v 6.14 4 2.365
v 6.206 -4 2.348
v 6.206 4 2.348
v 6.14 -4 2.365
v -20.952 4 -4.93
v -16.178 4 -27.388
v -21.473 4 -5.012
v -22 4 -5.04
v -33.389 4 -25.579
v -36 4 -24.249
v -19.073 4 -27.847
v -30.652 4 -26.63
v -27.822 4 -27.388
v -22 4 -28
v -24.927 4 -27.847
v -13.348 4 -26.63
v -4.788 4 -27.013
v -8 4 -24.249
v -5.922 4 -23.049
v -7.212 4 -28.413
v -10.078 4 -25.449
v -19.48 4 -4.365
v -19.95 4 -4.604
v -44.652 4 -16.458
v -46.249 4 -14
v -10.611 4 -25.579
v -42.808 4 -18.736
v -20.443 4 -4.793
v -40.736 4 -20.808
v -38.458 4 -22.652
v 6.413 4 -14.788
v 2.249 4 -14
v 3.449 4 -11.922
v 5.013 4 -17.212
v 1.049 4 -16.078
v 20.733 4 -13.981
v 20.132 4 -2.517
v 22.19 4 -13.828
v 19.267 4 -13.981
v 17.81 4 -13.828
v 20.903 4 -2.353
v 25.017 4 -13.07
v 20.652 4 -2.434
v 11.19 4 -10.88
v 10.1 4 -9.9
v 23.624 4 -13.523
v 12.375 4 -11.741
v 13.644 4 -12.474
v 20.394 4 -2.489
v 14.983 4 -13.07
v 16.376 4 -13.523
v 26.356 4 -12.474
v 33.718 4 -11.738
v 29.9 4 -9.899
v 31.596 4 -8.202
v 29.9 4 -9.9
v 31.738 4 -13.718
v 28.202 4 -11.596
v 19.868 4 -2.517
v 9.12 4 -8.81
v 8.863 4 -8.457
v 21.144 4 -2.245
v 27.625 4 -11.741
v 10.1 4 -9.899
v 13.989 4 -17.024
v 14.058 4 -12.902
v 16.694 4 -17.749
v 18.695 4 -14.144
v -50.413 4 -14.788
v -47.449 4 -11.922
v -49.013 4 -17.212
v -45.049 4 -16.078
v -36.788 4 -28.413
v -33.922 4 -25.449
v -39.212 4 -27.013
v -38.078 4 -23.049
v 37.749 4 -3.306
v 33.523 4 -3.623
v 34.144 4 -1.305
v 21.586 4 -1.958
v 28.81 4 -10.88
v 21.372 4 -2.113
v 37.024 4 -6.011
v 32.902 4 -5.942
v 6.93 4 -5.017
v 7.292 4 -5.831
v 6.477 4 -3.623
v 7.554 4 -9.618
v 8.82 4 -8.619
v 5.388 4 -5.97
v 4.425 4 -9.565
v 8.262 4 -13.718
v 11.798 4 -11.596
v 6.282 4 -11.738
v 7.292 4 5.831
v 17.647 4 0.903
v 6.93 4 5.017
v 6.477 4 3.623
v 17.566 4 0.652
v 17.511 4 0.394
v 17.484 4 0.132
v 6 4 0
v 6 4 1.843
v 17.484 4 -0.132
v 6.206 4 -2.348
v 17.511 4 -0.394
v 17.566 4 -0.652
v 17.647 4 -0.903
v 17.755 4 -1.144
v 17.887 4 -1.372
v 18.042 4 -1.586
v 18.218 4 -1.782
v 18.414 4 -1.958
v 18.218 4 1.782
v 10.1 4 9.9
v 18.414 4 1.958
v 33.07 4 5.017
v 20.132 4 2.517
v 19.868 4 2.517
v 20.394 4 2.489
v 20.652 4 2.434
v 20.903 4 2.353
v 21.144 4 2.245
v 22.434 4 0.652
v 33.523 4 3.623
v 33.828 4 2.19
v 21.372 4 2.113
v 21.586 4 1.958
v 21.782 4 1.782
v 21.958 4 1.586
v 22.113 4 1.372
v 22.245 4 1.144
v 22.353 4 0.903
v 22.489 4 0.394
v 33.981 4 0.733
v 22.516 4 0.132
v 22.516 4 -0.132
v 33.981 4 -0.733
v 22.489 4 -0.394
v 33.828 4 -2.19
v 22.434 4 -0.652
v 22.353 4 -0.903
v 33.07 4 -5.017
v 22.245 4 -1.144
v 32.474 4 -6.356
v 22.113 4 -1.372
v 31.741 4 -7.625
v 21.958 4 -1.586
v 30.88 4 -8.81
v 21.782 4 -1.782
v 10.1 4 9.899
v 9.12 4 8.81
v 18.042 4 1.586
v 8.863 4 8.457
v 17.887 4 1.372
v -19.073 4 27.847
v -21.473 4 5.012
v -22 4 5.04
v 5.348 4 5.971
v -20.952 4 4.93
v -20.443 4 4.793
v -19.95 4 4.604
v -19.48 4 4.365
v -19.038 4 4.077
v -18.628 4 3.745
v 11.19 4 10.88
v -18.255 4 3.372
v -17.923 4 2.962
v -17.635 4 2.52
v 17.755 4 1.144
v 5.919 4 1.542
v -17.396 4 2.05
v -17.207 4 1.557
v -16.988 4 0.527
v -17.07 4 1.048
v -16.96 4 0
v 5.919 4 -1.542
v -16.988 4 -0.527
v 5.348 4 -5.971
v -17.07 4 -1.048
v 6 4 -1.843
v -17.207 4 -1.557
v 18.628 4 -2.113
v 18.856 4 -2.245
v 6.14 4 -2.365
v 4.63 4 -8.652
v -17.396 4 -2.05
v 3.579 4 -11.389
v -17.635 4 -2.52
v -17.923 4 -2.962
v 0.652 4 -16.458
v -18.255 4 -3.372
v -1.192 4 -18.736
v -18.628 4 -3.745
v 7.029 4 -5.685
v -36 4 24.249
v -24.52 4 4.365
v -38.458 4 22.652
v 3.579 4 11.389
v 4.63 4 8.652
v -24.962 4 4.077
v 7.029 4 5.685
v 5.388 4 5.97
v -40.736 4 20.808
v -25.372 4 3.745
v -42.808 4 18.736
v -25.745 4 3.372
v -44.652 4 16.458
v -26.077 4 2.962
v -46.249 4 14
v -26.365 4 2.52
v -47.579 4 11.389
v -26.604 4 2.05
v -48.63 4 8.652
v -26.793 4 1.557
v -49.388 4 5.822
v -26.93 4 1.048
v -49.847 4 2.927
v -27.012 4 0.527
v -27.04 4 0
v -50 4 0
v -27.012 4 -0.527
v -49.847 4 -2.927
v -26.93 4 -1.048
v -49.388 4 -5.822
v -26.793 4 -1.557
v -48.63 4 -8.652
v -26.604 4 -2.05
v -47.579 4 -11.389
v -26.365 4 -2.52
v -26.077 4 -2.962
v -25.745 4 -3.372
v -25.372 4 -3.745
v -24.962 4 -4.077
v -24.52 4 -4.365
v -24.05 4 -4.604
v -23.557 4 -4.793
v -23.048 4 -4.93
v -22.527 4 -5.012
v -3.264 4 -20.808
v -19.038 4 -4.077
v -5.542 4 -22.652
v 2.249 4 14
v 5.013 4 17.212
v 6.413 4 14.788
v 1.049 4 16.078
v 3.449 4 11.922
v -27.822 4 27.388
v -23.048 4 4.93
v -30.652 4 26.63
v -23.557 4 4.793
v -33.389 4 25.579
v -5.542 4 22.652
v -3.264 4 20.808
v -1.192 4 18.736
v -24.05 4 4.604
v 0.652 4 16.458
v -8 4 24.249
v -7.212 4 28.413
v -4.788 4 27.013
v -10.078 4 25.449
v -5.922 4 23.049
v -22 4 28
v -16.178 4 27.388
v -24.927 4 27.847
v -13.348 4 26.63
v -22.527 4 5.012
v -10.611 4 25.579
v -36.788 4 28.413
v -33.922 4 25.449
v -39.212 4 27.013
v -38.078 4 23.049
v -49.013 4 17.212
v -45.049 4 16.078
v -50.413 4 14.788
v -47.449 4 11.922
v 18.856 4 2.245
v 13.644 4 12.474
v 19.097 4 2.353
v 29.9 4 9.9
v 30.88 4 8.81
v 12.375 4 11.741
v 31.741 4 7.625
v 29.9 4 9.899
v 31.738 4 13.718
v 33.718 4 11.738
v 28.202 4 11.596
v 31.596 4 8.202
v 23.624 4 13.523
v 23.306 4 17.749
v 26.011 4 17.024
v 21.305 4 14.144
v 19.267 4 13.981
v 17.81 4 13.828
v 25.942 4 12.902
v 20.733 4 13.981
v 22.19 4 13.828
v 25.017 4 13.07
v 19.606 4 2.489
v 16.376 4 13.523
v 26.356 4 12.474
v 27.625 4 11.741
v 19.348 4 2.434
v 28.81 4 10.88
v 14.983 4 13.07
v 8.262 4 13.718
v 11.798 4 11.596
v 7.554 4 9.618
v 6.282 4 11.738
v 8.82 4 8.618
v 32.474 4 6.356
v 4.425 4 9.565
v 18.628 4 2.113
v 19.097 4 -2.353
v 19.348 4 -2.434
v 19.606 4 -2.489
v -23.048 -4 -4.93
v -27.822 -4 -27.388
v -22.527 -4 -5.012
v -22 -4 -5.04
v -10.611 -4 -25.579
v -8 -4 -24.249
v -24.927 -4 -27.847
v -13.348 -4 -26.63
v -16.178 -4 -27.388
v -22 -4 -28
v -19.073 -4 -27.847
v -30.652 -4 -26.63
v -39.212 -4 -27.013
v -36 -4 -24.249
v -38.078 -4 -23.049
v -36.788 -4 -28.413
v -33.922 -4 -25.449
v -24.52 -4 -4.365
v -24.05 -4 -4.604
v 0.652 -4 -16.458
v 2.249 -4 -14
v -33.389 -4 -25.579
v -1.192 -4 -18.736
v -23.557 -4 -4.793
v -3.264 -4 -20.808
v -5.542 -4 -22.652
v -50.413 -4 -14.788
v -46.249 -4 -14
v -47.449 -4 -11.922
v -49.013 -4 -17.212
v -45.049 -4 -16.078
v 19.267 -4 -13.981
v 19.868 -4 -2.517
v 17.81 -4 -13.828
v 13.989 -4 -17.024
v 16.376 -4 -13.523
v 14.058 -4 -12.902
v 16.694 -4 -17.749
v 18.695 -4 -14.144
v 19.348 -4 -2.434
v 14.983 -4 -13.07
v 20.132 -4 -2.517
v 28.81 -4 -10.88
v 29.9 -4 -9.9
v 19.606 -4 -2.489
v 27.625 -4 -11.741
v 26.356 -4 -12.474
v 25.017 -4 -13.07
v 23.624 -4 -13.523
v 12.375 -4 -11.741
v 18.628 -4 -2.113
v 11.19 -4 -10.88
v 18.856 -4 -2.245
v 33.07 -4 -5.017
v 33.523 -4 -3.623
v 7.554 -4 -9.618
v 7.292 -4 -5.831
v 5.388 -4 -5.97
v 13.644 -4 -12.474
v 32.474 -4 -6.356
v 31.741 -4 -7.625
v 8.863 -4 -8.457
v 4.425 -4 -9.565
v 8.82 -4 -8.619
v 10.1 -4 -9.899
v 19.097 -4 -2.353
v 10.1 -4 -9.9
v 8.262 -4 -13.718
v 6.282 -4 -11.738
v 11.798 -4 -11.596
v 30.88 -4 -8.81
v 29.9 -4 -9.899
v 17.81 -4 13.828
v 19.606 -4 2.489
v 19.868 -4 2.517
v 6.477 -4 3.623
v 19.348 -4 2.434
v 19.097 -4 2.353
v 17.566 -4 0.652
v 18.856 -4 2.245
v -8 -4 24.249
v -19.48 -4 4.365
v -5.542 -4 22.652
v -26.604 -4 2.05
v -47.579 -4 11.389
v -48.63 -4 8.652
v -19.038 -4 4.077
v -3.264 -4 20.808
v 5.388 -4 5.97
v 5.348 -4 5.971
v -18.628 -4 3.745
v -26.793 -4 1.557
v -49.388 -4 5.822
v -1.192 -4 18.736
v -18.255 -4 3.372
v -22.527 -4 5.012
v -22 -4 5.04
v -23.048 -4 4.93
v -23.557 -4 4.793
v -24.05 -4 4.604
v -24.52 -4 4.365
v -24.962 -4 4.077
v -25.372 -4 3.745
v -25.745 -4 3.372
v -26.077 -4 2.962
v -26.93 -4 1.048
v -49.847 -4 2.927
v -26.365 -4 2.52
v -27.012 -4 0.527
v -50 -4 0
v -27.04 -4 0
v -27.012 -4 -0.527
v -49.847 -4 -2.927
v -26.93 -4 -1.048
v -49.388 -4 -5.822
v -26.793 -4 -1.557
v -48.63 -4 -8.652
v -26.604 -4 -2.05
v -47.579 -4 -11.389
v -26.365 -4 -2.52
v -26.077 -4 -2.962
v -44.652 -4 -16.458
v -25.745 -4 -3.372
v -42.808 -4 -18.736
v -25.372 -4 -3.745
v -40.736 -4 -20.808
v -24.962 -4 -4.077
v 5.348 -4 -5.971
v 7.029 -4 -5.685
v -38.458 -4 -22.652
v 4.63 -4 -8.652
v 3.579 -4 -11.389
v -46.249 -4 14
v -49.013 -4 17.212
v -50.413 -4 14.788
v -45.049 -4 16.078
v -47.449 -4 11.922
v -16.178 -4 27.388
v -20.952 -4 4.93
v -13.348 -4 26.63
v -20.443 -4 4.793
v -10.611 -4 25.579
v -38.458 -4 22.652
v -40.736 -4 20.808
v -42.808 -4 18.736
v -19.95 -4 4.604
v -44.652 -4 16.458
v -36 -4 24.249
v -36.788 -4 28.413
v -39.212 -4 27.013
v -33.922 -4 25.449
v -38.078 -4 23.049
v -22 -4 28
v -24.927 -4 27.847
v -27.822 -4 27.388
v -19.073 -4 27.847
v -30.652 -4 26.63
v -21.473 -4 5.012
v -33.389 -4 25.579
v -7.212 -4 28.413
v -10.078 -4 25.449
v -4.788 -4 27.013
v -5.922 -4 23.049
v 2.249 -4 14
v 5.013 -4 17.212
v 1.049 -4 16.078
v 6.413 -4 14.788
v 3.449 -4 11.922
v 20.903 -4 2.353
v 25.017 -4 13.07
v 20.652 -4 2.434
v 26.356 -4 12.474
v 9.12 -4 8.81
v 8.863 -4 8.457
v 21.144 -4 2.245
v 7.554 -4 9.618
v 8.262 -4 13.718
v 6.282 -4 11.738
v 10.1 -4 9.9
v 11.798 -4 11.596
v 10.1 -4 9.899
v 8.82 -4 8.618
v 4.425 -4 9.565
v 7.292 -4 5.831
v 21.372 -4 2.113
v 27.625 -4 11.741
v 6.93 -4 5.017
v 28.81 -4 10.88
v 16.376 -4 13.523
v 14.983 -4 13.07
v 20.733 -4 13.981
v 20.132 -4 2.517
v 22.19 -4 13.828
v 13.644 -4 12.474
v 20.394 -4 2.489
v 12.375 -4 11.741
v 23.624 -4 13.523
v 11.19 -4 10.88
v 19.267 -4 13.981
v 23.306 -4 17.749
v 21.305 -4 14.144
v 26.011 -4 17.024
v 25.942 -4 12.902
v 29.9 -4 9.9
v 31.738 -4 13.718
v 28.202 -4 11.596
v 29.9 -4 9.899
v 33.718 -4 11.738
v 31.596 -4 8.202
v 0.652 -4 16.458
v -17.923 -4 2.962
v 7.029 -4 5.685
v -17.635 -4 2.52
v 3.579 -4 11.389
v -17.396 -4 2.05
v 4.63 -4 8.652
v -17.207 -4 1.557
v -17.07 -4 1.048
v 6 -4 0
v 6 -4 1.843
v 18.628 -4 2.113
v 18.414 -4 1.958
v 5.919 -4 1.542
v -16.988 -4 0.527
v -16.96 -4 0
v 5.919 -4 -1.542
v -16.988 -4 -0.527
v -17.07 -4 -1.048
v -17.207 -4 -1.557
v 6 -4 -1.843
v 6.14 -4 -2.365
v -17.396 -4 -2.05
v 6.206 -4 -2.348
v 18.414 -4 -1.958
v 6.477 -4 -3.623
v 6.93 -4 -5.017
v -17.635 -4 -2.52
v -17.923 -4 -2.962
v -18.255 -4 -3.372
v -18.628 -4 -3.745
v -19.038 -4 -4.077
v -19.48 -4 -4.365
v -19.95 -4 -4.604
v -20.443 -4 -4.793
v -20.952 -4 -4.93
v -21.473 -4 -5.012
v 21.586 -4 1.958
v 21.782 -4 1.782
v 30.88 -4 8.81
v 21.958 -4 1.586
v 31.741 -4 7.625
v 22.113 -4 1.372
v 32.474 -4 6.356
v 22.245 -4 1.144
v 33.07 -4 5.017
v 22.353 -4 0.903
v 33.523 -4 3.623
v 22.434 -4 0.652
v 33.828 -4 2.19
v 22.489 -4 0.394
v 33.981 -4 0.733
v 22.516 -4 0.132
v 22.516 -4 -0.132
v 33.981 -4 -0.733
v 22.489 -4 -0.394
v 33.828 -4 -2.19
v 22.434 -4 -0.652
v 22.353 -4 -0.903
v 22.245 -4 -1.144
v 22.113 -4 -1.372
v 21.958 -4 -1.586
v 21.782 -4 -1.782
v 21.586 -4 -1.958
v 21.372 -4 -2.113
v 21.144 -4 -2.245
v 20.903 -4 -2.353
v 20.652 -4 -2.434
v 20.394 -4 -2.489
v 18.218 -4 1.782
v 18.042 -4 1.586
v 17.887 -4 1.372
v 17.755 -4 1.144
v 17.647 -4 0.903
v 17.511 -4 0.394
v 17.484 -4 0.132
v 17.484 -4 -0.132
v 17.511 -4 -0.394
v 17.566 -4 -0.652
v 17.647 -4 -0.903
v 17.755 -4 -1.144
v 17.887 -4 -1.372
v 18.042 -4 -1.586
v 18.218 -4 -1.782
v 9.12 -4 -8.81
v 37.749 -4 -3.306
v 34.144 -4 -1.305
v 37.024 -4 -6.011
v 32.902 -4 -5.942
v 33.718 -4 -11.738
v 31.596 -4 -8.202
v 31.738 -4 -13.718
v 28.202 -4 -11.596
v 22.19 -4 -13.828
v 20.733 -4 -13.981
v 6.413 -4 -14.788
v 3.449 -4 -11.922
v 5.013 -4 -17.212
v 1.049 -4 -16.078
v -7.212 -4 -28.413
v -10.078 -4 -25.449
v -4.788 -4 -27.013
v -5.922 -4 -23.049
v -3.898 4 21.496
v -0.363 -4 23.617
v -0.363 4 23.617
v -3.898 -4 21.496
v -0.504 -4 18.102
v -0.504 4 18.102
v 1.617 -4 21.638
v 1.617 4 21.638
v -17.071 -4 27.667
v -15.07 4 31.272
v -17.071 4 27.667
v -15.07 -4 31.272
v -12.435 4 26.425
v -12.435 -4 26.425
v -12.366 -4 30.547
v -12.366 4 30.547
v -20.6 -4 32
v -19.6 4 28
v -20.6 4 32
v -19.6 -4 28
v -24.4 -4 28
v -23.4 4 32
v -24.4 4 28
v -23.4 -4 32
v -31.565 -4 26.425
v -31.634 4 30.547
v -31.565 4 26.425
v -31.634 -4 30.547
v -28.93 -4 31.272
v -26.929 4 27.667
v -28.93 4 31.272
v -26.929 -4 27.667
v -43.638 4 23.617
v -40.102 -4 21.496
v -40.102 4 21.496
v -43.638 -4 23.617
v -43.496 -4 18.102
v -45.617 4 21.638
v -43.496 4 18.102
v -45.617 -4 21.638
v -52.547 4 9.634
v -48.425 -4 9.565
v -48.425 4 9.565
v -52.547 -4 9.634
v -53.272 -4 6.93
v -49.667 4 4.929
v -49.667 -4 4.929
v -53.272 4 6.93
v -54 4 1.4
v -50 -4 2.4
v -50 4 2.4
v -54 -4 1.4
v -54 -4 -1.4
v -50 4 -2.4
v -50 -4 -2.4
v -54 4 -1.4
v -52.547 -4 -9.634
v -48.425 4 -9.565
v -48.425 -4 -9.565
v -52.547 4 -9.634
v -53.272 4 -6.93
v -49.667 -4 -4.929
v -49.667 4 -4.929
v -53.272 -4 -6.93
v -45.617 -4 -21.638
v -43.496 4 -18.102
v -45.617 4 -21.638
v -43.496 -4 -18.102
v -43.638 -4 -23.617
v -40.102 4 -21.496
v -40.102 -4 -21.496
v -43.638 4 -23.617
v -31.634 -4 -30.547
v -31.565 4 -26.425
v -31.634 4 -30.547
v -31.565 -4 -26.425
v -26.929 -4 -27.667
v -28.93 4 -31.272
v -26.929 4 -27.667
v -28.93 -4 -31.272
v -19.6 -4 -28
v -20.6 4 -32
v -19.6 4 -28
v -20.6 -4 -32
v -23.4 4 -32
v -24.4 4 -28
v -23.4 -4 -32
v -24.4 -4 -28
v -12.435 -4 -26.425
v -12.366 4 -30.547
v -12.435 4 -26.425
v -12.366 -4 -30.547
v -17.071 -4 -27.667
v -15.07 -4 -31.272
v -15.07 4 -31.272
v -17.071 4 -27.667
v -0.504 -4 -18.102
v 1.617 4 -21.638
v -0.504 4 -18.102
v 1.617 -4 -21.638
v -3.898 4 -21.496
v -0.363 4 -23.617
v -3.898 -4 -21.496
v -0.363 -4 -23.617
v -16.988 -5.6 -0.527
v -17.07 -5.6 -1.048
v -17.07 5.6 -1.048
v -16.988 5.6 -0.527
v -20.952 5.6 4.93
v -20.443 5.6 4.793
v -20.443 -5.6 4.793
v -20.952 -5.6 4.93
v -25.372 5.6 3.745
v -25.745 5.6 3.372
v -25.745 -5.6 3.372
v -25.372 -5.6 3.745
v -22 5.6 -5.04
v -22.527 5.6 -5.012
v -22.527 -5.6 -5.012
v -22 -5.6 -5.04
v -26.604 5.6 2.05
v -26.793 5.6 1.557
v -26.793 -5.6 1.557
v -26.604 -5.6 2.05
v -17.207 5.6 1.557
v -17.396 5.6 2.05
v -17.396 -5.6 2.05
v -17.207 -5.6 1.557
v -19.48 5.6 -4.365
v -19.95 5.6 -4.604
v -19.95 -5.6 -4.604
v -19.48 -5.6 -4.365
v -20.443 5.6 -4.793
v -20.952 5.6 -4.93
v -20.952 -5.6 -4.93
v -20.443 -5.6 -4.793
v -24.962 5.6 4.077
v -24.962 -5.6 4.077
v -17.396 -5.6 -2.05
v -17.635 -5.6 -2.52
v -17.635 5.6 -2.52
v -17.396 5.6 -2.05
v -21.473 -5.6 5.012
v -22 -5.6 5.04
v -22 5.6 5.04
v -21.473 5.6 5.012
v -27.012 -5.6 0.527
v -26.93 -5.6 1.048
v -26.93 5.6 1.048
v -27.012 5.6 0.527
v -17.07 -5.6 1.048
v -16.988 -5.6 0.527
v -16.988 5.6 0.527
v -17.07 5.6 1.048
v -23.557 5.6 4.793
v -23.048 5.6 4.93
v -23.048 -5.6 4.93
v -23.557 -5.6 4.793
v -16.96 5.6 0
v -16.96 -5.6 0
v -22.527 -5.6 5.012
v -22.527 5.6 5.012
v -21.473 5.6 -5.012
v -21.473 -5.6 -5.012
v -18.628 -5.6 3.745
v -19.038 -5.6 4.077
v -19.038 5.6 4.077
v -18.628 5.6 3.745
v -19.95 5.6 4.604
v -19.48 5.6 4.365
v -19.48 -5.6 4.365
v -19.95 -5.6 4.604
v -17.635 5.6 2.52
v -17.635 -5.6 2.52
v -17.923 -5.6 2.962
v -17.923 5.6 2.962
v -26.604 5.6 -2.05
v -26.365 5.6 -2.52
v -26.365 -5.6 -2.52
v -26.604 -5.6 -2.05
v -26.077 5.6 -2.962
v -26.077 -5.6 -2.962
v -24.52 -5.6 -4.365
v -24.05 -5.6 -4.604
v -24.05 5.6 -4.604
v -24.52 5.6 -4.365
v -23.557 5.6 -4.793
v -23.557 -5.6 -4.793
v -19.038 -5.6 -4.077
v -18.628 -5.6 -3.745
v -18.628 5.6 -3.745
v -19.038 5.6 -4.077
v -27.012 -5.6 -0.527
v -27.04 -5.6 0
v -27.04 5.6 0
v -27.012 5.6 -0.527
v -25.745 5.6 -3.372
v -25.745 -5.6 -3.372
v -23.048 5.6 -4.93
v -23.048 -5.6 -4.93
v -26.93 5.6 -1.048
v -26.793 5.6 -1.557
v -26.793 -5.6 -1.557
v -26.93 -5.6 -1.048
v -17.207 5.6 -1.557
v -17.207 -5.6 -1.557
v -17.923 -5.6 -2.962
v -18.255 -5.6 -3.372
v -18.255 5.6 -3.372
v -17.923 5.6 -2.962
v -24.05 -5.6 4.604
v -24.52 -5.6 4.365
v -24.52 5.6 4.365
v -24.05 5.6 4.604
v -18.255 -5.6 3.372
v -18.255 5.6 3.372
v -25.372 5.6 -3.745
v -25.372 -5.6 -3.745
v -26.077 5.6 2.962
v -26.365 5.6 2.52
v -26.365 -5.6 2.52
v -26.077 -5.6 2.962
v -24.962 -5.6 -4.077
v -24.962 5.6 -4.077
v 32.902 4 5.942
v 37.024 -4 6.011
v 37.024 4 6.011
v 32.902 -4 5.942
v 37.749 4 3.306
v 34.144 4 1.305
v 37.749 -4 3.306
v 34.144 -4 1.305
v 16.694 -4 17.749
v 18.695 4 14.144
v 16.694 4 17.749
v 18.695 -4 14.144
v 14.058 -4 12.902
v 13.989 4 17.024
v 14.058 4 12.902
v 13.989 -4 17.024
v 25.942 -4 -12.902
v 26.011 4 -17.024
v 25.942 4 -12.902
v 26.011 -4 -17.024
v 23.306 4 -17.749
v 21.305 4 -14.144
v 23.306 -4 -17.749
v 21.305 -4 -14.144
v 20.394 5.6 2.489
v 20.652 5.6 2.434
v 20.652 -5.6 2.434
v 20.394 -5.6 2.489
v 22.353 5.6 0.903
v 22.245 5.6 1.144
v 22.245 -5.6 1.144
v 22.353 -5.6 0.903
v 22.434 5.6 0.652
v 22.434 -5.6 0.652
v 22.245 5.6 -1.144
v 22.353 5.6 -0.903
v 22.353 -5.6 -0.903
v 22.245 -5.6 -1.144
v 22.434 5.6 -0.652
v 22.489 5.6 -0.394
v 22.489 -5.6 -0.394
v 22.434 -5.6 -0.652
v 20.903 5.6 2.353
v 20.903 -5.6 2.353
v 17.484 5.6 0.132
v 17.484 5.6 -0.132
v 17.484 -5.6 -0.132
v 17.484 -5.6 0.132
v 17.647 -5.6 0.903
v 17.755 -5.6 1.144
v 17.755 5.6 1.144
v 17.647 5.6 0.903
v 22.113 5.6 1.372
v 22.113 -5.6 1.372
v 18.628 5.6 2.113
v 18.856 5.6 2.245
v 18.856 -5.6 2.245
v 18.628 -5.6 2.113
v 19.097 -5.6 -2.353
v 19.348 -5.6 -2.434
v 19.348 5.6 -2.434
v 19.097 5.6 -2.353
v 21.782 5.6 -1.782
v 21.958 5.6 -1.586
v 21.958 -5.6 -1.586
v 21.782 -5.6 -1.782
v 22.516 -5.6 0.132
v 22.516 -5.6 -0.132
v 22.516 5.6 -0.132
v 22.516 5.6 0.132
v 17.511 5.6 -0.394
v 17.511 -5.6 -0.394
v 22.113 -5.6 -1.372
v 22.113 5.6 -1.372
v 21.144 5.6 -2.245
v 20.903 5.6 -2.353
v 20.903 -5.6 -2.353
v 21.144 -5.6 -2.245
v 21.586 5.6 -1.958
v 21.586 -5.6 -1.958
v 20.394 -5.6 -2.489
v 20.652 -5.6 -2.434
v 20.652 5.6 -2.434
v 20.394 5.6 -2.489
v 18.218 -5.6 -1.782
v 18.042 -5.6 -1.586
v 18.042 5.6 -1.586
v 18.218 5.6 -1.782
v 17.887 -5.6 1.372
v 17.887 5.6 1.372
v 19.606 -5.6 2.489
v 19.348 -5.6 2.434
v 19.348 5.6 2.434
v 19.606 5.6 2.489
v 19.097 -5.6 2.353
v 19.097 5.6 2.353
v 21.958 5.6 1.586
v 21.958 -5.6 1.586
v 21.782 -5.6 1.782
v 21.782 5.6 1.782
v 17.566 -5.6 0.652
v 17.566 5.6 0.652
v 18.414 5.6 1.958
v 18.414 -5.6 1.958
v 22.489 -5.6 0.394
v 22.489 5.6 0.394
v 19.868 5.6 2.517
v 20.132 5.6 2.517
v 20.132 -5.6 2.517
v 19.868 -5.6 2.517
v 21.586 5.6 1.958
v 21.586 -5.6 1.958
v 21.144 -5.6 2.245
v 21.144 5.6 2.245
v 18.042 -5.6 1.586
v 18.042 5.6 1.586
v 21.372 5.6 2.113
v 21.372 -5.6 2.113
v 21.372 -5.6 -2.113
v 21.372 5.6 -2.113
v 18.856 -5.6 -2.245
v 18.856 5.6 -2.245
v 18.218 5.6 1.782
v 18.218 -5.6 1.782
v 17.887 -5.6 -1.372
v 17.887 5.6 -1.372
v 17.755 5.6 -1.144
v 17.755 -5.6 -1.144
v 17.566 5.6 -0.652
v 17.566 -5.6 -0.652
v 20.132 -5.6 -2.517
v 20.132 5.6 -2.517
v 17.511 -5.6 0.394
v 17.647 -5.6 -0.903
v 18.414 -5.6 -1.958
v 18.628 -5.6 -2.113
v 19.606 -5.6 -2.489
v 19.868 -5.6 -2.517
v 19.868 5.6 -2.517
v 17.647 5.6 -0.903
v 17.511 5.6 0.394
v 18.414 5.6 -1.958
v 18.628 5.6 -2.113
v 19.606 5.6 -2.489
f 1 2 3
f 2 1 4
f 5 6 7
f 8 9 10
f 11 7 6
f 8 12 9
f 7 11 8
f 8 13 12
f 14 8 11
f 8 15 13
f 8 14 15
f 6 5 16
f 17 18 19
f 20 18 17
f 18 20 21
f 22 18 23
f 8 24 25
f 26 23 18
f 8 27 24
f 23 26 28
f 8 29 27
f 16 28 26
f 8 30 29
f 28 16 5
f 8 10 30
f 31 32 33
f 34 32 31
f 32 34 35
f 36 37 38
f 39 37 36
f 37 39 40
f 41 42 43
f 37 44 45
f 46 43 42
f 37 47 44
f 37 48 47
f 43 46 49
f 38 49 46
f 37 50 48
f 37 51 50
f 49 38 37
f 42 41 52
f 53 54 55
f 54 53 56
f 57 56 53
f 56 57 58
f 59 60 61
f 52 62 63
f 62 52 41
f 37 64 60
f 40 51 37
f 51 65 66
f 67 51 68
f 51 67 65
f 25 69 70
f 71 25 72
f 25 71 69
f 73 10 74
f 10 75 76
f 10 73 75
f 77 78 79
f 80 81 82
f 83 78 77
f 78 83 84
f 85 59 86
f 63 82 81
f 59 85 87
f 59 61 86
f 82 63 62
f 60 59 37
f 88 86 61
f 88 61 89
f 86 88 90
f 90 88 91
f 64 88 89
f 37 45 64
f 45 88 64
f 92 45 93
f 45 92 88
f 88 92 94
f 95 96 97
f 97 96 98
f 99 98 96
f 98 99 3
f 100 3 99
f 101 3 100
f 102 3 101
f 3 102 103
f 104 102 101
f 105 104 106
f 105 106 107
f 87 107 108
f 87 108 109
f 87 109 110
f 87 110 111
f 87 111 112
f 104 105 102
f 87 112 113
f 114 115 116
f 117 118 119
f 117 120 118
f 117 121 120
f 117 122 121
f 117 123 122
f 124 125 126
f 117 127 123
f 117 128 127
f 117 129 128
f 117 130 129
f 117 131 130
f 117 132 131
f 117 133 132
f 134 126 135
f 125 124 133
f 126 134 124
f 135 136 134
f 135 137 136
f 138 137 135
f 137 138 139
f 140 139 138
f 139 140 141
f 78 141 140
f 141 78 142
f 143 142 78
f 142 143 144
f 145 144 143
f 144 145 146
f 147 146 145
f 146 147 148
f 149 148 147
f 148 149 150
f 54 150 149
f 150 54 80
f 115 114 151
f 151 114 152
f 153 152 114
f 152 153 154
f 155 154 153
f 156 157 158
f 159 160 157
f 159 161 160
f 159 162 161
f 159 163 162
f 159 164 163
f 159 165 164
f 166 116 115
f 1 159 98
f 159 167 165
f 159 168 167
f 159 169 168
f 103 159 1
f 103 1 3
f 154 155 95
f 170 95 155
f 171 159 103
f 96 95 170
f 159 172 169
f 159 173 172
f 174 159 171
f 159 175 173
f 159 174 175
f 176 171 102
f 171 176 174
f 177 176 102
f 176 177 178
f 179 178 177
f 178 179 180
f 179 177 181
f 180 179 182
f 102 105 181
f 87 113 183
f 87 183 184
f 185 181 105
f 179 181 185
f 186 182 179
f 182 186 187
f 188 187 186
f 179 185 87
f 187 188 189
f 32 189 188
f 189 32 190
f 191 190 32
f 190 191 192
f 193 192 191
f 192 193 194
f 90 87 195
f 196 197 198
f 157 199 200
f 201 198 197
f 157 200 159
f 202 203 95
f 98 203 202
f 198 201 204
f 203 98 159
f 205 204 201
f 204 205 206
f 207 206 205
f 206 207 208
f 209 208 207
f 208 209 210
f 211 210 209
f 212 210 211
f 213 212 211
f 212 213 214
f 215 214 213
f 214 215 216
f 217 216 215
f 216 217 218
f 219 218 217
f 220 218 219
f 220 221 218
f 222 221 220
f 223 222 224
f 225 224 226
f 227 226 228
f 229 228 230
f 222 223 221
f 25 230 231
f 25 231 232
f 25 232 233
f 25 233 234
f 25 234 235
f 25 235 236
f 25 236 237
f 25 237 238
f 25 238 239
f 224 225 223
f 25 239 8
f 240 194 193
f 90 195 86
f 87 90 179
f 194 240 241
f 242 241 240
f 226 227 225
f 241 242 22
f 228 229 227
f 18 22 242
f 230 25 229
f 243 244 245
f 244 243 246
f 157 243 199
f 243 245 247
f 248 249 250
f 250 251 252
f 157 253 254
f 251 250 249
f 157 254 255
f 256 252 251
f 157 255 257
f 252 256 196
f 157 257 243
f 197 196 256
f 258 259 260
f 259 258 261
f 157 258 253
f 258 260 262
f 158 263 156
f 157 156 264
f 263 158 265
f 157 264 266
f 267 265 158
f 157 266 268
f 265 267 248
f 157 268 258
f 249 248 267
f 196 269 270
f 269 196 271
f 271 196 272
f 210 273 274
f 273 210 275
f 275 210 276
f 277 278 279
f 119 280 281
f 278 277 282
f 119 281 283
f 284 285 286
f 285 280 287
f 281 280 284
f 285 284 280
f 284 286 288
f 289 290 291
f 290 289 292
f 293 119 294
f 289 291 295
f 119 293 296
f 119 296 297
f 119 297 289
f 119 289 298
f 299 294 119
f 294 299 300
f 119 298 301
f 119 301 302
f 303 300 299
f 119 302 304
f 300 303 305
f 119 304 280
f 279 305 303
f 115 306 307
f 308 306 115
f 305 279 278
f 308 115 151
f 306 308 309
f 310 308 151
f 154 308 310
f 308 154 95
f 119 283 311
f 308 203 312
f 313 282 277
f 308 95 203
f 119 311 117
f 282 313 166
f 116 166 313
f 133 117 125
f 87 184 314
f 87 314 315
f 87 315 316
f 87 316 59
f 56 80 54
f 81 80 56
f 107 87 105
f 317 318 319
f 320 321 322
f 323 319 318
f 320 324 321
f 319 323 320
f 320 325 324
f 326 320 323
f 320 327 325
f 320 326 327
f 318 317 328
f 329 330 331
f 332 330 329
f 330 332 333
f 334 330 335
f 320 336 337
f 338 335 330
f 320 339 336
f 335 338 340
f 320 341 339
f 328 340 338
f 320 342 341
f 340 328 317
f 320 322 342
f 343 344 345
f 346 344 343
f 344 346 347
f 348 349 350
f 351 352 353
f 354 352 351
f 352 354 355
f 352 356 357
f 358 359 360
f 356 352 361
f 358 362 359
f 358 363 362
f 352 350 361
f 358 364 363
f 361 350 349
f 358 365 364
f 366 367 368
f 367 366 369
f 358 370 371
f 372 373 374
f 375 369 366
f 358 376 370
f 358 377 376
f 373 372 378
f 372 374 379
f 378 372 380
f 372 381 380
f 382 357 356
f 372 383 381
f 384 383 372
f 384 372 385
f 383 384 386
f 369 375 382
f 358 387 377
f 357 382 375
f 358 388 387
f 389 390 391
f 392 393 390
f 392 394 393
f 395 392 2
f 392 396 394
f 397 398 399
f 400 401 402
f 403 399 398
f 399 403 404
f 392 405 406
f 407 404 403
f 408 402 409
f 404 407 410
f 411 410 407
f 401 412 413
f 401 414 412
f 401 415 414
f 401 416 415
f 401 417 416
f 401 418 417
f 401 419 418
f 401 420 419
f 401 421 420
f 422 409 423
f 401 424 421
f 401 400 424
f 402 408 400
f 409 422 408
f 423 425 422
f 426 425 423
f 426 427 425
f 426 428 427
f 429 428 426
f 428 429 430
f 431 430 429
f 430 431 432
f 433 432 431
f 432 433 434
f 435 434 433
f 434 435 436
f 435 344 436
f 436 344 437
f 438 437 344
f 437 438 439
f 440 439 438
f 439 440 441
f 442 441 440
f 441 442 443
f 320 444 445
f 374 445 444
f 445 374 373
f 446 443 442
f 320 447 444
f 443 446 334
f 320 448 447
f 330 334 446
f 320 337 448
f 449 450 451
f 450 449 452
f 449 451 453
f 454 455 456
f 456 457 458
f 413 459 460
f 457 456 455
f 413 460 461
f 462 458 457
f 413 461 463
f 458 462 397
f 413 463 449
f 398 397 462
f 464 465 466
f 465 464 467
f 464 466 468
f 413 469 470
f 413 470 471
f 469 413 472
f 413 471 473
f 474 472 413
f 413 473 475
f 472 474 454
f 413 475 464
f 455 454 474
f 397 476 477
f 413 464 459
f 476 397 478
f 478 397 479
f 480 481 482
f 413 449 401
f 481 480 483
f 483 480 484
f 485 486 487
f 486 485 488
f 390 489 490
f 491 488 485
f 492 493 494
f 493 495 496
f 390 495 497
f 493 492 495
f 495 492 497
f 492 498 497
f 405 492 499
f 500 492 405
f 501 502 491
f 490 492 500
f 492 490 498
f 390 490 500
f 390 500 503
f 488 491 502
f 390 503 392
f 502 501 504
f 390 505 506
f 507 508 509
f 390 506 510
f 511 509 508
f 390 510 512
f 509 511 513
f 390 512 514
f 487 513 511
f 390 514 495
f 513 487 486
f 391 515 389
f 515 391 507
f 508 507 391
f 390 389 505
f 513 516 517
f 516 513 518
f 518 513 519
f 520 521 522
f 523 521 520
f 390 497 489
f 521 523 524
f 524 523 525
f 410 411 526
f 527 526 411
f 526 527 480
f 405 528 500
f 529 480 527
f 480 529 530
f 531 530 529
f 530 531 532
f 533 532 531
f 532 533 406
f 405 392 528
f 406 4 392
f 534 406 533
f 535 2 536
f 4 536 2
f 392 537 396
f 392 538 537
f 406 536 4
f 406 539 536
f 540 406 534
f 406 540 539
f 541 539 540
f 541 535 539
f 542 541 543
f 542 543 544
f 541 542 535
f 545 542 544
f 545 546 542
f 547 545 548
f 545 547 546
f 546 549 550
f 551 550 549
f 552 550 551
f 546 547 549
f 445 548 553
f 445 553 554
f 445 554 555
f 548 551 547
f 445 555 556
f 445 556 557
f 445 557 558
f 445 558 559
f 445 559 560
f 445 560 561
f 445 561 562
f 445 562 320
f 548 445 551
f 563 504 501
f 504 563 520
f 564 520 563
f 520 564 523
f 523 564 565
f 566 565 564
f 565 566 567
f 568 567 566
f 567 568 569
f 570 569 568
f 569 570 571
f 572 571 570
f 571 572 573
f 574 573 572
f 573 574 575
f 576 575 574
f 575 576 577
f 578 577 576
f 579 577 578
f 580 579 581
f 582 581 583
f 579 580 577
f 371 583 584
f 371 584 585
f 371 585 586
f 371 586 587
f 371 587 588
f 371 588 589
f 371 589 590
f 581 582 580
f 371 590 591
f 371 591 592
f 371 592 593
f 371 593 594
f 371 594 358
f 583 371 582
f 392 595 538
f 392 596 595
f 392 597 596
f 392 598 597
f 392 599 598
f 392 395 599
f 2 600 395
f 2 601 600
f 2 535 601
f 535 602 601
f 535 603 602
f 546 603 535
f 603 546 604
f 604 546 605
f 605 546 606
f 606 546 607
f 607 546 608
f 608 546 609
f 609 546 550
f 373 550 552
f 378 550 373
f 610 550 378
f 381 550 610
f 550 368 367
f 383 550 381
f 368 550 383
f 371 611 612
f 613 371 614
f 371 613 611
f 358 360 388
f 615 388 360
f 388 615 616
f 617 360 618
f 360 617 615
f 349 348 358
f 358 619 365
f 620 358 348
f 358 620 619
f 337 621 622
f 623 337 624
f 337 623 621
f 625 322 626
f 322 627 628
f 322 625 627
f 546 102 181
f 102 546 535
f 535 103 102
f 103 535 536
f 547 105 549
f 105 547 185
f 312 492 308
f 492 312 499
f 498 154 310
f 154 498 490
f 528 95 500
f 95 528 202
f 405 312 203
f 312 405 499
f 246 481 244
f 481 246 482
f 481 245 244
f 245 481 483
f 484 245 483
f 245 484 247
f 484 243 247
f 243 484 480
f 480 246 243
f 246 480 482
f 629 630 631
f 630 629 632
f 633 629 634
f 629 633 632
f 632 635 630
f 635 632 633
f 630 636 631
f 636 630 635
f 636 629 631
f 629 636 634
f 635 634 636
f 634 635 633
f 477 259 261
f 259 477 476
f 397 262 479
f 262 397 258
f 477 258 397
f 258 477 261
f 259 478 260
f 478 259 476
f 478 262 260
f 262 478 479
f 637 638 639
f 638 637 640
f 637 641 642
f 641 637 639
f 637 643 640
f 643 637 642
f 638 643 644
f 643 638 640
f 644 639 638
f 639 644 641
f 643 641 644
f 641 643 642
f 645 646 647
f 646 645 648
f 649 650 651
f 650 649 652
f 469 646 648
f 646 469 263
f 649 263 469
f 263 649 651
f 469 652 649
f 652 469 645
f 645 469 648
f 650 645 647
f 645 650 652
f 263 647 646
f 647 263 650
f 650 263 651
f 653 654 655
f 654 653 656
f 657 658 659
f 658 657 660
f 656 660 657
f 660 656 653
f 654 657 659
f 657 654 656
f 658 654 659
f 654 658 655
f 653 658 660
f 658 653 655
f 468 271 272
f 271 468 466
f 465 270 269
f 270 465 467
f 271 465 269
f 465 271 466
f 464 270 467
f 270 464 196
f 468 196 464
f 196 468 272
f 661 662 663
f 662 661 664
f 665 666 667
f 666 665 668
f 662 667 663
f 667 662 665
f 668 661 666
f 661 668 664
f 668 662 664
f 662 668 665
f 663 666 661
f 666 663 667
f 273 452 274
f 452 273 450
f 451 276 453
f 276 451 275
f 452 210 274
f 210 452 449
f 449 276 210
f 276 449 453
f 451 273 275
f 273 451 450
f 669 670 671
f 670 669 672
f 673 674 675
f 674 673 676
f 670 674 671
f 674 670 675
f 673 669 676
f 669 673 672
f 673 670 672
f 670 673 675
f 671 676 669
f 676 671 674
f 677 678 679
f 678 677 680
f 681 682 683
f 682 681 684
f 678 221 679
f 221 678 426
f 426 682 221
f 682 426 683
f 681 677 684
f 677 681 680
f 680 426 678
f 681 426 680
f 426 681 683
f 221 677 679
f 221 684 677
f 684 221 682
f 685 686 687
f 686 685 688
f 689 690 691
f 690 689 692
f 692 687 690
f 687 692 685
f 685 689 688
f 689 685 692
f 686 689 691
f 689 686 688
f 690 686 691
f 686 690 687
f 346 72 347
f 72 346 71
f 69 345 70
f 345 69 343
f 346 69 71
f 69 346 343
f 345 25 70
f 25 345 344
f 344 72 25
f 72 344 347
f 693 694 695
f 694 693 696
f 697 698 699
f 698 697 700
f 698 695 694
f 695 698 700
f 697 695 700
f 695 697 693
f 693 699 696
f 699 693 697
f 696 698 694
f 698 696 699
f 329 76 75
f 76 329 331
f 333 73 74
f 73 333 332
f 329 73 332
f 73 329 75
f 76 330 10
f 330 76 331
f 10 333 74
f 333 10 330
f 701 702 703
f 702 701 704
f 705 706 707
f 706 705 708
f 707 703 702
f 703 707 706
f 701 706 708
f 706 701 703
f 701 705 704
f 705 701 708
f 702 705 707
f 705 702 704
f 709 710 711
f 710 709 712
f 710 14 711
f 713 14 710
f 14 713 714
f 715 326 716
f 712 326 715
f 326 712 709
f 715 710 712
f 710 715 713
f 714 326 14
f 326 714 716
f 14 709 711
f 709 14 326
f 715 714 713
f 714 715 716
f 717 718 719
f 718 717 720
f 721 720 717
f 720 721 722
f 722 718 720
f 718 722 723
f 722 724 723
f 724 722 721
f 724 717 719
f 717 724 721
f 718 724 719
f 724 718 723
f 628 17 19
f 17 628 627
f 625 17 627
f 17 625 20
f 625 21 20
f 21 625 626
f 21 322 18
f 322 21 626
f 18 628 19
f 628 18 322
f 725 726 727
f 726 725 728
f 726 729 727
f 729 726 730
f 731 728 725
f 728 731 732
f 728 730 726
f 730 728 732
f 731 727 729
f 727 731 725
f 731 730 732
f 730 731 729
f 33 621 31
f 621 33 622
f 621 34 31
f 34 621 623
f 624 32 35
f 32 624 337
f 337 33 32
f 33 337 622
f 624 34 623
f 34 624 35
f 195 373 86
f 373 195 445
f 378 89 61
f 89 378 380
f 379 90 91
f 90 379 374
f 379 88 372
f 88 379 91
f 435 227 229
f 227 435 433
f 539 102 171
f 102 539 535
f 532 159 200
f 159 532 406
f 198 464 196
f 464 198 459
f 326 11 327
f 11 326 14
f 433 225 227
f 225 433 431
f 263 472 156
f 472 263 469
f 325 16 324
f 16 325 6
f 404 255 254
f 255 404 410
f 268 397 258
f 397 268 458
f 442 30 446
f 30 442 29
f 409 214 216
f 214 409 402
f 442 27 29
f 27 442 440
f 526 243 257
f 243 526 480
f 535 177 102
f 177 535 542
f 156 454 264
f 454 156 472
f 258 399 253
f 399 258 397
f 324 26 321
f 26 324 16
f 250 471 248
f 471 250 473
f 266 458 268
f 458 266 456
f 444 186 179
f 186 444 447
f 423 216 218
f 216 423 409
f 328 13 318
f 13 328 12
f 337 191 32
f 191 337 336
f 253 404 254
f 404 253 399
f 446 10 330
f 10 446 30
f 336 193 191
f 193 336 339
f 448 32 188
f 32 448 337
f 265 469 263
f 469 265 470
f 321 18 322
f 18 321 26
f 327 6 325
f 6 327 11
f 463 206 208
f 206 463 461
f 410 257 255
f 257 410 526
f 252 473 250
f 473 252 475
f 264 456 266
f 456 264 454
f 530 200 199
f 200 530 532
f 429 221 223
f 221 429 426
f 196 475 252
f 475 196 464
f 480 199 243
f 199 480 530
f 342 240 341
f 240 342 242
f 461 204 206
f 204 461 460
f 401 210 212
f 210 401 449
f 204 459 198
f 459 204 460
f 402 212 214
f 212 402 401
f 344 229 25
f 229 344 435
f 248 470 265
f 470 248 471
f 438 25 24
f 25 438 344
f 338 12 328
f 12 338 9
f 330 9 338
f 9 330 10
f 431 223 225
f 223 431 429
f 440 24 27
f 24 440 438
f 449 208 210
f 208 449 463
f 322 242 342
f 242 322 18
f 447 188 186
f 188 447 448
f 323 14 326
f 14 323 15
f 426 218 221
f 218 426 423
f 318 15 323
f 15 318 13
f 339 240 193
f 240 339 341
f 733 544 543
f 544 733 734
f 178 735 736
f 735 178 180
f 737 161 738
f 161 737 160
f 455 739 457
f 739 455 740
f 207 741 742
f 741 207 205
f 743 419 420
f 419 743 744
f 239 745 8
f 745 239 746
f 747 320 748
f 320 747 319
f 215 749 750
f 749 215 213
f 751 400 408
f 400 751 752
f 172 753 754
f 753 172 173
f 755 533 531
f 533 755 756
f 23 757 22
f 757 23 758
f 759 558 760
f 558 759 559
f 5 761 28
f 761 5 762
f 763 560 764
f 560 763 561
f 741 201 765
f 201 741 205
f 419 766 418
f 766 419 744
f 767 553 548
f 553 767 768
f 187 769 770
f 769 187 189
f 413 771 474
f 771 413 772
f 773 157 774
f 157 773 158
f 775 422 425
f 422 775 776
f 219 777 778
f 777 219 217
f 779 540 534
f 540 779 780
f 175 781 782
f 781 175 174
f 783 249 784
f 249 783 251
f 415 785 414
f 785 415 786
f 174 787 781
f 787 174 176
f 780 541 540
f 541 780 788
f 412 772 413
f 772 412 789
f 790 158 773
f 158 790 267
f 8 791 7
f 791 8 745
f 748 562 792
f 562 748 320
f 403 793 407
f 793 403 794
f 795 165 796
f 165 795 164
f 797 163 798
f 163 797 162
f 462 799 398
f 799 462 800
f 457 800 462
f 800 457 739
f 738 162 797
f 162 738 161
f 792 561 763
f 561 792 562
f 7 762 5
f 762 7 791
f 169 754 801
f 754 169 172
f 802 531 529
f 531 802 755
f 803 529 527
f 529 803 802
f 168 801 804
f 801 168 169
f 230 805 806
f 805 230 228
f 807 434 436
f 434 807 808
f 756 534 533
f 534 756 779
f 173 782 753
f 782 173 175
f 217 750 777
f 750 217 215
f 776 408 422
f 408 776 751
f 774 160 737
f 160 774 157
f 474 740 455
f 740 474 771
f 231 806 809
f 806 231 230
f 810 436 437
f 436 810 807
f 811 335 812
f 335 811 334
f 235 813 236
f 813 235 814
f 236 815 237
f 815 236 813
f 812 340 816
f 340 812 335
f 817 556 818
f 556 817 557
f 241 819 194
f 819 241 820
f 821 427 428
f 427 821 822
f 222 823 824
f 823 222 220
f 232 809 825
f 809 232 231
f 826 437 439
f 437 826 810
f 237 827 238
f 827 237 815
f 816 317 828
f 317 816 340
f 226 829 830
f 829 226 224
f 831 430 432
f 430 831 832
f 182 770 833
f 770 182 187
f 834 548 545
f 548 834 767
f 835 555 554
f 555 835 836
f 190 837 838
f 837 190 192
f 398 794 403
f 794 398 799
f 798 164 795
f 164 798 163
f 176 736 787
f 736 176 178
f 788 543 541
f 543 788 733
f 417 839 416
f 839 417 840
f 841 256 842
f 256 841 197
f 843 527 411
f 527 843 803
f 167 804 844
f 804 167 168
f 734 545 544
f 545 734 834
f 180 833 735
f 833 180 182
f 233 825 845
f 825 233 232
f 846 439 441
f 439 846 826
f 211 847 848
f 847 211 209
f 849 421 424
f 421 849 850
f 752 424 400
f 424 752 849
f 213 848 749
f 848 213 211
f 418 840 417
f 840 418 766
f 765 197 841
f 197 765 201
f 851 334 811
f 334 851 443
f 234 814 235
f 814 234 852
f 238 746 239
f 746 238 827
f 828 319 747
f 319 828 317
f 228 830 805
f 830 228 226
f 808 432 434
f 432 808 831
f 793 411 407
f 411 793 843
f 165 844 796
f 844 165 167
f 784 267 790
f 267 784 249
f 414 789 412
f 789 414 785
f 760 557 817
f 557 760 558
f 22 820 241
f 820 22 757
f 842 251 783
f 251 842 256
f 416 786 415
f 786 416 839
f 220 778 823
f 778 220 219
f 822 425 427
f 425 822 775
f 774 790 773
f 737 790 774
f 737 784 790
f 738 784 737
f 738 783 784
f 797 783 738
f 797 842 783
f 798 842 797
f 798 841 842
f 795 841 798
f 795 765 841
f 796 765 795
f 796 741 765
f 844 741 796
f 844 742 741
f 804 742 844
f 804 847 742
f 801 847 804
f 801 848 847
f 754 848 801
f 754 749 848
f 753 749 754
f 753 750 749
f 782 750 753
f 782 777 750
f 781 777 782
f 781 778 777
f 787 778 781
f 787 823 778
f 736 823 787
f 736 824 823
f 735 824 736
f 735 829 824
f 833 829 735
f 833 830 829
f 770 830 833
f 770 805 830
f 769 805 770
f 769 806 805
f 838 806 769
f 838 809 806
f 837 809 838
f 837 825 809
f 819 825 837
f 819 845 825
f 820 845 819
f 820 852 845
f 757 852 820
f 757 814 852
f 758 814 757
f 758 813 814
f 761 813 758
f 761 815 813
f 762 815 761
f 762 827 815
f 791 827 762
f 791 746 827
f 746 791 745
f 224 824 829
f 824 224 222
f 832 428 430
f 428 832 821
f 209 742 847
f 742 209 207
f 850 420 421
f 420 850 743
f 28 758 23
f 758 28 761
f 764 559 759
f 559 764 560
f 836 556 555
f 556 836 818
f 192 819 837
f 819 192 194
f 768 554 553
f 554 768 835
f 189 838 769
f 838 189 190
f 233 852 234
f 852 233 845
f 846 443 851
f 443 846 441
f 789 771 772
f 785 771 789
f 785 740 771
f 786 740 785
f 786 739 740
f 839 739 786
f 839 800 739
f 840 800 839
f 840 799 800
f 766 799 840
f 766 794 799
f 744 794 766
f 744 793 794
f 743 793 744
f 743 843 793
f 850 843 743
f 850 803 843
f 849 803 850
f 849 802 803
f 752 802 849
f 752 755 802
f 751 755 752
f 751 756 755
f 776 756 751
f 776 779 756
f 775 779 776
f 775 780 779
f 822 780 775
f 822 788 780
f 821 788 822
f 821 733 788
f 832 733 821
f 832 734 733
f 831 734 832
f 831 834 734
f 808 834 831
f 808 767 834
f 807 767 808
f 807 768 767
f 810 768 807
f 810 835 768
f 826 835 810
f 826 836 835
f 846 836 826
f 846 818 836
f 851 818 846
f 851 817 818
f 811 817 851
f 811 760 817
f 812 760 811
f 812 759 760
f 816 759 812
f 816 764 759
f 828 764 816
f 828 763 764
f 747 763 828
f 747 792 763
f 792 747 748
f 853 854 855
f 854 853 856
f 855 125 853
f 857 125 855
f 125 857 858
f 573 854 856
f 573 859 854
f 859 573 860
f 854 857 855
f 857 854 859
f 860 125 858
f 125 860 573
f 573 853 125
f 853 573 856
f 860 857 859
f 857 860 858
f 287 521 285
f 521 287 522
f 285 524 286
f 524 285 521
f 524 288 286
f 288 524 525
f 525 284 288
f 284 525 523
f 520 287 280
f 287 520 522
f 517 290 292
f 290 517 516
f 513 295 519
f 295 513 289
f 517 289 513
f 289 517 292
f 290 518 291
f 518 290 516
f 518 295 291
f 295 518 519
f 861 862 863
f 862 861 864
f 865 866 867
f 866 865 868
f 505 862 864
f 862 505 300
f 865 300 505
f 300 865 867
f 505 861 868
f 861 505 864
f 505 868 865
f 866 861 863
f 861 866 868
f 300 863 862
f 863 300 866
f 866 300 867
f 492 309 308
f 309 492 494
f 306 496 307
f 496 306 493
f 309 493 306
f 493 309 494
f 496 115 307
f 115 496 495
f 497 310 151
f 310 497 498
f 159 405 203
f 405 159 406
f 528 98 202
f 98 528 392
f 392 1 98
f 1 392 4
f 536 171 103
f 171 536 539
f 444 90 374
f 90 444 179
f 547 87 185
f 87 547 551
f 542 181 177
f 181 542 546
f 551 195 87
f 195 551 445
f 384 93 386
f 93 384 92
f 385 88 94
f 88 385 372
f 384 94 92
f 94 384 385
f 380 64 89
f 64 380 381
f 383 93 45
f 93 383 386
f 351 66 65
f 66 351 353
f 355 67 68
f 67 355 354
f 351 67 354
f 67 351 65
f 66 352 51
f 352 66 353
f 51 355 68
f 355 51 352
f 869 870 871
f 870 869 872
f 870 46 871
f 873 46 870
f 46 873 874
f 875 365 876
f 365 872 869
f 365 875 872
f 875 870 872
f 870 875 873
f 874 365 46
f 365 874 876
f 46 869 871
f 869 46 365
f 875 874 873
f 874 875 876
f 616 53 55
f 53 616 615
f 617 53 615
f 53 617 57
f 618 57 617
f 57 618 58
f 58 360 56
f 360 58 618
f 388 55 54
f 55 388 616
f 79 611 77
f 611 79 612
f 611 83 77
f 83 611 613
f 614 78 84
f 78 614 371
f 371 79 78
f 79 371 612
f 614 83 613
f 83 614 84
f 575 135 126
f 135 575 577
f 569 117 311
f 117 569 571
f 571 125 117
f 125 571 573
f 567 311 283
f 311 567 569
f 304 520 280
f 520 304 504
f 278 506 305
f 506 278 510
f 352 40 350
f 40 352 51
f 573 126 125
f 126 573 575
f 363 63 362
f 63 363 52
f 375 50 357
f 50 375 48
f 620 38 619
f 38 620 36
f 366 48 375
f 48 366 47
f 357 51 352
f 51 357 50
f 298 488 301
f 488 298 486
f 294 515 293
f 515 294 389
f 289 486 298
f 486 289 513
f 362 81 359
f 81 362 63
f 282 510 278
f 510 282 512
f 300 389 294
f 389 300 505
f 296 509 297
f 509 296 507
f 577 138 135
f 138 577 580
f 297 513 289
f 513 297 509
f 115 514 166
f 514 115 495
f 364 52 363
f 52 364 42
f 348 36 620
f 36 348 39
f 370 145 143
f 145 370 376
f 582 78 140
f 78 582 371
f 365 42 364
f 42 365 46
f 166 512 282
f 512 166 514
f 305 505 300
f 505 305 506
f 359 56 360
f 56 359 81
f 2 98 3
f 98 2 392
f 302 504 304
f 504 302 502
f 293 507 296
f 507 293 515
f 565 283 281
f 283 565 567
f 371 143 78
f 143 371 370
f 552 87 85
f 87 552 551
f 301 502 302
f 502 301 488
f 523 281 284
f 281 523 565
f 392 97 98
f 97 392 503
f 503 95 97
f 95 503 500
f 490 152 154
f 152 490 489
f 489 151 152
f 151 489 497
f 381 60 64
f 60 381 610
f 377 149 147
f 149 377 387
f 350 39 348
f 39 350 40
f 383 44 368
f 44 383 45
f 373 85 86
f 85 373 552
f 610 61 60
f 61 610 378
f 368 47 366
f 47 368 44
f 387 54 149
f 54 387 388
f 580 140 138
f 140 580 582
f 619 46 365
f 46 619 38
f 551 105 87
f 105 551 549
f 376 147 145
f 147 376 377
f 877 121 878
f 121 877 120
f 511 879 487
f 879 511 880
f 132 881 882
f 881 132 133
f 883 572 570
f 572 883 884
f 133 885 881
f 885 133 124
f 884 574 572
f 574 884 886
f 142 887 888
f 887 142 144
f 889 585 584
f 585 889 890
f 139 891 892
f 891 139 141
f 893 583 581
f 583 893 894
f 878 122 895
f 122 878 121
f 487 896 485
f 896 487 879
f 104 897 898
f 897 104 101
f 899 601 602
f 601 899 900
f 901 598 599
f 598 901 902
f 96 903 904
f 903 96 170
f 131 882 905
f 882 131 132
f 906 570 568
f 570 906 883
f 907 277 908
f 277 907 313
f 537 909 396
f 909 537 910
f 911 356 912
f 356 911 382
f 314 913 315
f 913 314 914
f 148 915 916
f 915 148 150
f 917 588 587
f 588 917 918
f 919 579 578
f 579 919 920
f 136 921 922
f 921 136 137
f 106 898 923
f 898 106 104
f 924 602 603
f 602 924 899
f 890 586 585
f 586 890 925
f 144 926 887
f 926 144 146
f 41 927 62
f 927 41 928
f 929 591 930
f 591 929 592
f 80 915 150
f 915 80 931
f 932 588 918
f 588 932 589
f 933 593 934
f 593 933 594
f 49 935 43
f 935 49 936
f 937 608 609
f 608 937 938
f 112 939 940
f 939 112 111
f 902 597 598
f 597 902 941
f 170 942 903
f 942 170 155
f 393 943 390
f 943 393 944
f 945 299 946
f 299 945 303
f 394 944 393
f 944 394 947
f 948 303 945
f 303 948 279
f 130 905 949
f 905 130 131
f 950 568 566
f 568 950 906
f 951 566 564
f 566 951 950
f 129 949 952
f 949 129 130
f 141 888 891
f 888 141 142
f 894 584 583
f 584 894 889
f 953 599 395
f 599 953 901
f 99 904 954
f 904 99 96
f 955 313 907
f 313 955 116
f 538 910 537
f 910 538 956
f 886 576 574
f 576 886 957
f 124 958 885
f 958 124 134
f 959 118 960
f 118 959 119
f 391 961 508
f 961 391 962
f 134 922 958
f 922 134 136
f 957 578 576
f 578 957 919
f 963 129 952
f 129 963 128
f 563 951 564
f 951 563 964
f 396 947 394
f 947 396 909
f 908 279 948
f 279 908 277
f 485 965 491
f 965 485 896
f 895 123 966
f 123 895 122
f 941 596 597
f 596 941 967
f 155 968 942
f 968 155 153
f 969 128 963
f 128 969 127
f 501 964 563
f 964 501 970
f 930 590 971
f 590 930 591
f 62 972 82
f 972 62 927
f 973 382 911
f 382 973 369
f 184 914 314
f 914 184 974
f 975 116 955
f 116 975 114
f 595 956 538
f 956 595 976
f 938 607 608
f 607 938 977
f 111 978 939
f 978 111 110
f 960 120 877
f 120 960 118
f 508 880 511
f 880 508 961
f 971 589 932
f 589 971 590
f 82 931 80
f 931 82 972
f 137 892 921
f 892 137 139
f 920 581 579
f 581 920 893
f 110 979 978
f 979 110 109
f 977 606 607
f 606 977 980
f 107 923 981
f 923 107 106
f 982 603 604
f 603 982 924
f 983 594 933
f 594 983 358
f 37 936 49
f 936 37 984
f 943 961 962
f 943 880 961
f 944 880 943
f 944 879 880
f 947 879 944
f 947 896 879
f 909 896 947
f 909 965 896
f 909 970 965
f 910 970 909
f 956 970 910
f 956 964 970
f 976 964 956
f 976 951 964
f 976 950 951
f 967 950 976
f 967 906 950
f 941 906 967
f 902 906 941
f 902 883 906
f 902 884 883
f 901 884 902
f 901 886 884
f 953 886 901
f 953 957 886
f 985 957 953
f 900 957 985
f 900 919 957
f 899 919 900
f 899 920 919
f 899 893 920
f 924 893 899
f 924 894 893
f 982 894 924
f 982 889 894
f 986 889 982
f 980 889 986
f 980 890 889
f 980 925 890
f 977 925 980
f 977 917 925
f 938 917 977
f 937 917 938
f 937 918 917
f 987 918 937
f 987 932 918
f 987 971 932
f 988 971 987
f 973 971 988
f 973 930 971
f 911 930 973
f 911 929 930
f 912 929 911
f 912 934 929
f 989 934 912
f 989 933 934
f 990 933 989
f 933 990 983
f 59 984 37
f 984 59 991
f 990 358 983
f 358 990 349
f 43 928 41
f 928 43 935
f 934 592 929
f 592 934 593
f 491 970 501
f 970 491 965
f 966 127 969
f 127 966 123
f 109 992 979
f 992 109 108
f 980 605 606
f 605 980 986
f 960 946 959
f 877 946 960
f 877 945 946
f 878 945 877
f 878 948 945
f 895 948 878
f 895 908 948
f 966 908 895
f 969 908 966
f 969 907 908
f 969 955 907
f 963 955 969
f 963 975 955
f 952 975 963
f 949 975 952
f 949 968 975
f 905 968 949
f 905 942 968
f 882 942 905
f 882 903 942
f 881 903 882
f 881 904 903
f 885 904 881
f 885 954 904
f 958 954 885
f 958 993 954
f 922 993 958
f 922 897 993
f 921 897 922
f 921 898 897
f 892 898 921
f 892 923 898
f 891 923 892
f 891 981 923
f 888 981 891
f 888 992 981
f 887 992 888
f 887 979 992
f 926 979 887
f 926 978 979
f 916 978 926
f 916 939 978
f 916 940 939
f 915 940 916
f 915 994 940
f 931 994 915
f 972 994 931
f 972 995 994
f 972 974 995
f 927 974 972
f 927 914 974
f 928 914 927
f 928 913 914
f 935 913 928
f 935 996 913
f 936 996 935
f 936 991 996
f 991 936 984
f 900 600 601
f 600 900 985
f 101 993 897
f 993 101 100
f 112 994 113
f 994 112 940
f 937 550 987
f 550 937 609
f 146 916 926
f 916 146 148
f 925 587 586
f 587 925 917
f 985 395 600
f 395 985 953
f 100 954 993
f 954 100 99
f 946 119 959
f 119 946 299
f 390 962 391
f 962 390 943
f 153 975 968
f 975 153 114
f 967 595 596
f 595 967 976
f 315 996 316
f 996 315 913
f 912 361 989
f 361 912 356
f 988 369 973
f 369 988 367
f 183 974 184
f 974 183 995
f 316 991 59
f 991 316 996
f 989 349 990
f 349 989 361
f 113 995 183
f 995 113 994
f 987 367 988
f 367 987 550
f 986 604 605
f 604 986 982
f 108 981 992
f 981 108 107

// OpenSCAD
// file: _common.scad
// mechanism 共用設定 + 齒輪 module
$fn = 60;

// 簡化齒輪：N 個齒、節圓半徑 r、齒高 h、齒寬 w
module simple_gear(N = 16, r = 20, h = 4, thick = 6) {
  union() {
    // 主圓盤
    cylinder(h = thick, r = r, center = true);
    // 齒（梯形）
    for (i = [0:N-1]) {
      rotate([0, 0, i * 360 / N])
        translate([r, 0, 0])
          linear_extrude(height = thick, center = true)
            polygon([[0, -2.4], [h, -1.4], [h, 1.4], [0, 2.4]]);
    }
    // 中心凸軸
    cylinder(h = thick * 1.4, r = r * 0.18, center = true);
  }
}
// main file
// 齒輪組 Gear Pair — 兩個嚙合齒輪
include <_common.scad>

// 大齒輪（N1 = 24 齒，r = 28）
translate([-22, 0, 0]) rotate([90, 0, 0])
  color([0.08, 0.71, 0.65]) simple_gear(N = 24, r = 28, h = 4, thick = 8);

// 小齒輪（N2 = 12 齒，r = 14；嚙合到大齒輪右側）
// 兩齒輪節圓相切：圓心距 = r1 + r2 = 28 + 14 = 42
// 偏轉半齒（12 齒一齒 30°，半齒 15°）讓齒對到大齒輪的齒槽。
// 注意要先繞齒輪自己的軸（Z）轉，再 rotate([90,0,0]) 立起來；
// 寫成 rotate([90,0,15]) 會變成繞世界 Z 軸轉，小齒輪整個歪掉、和大齒輪不共面
translate([20, 0, 0]) rotate([90, 0, 0]) rotate([0, 0, 360/12/2])
  color([0.86, 0.4, 0.2]) simple_gear(N = 12, r = 14, h = 4, thick = 8);
